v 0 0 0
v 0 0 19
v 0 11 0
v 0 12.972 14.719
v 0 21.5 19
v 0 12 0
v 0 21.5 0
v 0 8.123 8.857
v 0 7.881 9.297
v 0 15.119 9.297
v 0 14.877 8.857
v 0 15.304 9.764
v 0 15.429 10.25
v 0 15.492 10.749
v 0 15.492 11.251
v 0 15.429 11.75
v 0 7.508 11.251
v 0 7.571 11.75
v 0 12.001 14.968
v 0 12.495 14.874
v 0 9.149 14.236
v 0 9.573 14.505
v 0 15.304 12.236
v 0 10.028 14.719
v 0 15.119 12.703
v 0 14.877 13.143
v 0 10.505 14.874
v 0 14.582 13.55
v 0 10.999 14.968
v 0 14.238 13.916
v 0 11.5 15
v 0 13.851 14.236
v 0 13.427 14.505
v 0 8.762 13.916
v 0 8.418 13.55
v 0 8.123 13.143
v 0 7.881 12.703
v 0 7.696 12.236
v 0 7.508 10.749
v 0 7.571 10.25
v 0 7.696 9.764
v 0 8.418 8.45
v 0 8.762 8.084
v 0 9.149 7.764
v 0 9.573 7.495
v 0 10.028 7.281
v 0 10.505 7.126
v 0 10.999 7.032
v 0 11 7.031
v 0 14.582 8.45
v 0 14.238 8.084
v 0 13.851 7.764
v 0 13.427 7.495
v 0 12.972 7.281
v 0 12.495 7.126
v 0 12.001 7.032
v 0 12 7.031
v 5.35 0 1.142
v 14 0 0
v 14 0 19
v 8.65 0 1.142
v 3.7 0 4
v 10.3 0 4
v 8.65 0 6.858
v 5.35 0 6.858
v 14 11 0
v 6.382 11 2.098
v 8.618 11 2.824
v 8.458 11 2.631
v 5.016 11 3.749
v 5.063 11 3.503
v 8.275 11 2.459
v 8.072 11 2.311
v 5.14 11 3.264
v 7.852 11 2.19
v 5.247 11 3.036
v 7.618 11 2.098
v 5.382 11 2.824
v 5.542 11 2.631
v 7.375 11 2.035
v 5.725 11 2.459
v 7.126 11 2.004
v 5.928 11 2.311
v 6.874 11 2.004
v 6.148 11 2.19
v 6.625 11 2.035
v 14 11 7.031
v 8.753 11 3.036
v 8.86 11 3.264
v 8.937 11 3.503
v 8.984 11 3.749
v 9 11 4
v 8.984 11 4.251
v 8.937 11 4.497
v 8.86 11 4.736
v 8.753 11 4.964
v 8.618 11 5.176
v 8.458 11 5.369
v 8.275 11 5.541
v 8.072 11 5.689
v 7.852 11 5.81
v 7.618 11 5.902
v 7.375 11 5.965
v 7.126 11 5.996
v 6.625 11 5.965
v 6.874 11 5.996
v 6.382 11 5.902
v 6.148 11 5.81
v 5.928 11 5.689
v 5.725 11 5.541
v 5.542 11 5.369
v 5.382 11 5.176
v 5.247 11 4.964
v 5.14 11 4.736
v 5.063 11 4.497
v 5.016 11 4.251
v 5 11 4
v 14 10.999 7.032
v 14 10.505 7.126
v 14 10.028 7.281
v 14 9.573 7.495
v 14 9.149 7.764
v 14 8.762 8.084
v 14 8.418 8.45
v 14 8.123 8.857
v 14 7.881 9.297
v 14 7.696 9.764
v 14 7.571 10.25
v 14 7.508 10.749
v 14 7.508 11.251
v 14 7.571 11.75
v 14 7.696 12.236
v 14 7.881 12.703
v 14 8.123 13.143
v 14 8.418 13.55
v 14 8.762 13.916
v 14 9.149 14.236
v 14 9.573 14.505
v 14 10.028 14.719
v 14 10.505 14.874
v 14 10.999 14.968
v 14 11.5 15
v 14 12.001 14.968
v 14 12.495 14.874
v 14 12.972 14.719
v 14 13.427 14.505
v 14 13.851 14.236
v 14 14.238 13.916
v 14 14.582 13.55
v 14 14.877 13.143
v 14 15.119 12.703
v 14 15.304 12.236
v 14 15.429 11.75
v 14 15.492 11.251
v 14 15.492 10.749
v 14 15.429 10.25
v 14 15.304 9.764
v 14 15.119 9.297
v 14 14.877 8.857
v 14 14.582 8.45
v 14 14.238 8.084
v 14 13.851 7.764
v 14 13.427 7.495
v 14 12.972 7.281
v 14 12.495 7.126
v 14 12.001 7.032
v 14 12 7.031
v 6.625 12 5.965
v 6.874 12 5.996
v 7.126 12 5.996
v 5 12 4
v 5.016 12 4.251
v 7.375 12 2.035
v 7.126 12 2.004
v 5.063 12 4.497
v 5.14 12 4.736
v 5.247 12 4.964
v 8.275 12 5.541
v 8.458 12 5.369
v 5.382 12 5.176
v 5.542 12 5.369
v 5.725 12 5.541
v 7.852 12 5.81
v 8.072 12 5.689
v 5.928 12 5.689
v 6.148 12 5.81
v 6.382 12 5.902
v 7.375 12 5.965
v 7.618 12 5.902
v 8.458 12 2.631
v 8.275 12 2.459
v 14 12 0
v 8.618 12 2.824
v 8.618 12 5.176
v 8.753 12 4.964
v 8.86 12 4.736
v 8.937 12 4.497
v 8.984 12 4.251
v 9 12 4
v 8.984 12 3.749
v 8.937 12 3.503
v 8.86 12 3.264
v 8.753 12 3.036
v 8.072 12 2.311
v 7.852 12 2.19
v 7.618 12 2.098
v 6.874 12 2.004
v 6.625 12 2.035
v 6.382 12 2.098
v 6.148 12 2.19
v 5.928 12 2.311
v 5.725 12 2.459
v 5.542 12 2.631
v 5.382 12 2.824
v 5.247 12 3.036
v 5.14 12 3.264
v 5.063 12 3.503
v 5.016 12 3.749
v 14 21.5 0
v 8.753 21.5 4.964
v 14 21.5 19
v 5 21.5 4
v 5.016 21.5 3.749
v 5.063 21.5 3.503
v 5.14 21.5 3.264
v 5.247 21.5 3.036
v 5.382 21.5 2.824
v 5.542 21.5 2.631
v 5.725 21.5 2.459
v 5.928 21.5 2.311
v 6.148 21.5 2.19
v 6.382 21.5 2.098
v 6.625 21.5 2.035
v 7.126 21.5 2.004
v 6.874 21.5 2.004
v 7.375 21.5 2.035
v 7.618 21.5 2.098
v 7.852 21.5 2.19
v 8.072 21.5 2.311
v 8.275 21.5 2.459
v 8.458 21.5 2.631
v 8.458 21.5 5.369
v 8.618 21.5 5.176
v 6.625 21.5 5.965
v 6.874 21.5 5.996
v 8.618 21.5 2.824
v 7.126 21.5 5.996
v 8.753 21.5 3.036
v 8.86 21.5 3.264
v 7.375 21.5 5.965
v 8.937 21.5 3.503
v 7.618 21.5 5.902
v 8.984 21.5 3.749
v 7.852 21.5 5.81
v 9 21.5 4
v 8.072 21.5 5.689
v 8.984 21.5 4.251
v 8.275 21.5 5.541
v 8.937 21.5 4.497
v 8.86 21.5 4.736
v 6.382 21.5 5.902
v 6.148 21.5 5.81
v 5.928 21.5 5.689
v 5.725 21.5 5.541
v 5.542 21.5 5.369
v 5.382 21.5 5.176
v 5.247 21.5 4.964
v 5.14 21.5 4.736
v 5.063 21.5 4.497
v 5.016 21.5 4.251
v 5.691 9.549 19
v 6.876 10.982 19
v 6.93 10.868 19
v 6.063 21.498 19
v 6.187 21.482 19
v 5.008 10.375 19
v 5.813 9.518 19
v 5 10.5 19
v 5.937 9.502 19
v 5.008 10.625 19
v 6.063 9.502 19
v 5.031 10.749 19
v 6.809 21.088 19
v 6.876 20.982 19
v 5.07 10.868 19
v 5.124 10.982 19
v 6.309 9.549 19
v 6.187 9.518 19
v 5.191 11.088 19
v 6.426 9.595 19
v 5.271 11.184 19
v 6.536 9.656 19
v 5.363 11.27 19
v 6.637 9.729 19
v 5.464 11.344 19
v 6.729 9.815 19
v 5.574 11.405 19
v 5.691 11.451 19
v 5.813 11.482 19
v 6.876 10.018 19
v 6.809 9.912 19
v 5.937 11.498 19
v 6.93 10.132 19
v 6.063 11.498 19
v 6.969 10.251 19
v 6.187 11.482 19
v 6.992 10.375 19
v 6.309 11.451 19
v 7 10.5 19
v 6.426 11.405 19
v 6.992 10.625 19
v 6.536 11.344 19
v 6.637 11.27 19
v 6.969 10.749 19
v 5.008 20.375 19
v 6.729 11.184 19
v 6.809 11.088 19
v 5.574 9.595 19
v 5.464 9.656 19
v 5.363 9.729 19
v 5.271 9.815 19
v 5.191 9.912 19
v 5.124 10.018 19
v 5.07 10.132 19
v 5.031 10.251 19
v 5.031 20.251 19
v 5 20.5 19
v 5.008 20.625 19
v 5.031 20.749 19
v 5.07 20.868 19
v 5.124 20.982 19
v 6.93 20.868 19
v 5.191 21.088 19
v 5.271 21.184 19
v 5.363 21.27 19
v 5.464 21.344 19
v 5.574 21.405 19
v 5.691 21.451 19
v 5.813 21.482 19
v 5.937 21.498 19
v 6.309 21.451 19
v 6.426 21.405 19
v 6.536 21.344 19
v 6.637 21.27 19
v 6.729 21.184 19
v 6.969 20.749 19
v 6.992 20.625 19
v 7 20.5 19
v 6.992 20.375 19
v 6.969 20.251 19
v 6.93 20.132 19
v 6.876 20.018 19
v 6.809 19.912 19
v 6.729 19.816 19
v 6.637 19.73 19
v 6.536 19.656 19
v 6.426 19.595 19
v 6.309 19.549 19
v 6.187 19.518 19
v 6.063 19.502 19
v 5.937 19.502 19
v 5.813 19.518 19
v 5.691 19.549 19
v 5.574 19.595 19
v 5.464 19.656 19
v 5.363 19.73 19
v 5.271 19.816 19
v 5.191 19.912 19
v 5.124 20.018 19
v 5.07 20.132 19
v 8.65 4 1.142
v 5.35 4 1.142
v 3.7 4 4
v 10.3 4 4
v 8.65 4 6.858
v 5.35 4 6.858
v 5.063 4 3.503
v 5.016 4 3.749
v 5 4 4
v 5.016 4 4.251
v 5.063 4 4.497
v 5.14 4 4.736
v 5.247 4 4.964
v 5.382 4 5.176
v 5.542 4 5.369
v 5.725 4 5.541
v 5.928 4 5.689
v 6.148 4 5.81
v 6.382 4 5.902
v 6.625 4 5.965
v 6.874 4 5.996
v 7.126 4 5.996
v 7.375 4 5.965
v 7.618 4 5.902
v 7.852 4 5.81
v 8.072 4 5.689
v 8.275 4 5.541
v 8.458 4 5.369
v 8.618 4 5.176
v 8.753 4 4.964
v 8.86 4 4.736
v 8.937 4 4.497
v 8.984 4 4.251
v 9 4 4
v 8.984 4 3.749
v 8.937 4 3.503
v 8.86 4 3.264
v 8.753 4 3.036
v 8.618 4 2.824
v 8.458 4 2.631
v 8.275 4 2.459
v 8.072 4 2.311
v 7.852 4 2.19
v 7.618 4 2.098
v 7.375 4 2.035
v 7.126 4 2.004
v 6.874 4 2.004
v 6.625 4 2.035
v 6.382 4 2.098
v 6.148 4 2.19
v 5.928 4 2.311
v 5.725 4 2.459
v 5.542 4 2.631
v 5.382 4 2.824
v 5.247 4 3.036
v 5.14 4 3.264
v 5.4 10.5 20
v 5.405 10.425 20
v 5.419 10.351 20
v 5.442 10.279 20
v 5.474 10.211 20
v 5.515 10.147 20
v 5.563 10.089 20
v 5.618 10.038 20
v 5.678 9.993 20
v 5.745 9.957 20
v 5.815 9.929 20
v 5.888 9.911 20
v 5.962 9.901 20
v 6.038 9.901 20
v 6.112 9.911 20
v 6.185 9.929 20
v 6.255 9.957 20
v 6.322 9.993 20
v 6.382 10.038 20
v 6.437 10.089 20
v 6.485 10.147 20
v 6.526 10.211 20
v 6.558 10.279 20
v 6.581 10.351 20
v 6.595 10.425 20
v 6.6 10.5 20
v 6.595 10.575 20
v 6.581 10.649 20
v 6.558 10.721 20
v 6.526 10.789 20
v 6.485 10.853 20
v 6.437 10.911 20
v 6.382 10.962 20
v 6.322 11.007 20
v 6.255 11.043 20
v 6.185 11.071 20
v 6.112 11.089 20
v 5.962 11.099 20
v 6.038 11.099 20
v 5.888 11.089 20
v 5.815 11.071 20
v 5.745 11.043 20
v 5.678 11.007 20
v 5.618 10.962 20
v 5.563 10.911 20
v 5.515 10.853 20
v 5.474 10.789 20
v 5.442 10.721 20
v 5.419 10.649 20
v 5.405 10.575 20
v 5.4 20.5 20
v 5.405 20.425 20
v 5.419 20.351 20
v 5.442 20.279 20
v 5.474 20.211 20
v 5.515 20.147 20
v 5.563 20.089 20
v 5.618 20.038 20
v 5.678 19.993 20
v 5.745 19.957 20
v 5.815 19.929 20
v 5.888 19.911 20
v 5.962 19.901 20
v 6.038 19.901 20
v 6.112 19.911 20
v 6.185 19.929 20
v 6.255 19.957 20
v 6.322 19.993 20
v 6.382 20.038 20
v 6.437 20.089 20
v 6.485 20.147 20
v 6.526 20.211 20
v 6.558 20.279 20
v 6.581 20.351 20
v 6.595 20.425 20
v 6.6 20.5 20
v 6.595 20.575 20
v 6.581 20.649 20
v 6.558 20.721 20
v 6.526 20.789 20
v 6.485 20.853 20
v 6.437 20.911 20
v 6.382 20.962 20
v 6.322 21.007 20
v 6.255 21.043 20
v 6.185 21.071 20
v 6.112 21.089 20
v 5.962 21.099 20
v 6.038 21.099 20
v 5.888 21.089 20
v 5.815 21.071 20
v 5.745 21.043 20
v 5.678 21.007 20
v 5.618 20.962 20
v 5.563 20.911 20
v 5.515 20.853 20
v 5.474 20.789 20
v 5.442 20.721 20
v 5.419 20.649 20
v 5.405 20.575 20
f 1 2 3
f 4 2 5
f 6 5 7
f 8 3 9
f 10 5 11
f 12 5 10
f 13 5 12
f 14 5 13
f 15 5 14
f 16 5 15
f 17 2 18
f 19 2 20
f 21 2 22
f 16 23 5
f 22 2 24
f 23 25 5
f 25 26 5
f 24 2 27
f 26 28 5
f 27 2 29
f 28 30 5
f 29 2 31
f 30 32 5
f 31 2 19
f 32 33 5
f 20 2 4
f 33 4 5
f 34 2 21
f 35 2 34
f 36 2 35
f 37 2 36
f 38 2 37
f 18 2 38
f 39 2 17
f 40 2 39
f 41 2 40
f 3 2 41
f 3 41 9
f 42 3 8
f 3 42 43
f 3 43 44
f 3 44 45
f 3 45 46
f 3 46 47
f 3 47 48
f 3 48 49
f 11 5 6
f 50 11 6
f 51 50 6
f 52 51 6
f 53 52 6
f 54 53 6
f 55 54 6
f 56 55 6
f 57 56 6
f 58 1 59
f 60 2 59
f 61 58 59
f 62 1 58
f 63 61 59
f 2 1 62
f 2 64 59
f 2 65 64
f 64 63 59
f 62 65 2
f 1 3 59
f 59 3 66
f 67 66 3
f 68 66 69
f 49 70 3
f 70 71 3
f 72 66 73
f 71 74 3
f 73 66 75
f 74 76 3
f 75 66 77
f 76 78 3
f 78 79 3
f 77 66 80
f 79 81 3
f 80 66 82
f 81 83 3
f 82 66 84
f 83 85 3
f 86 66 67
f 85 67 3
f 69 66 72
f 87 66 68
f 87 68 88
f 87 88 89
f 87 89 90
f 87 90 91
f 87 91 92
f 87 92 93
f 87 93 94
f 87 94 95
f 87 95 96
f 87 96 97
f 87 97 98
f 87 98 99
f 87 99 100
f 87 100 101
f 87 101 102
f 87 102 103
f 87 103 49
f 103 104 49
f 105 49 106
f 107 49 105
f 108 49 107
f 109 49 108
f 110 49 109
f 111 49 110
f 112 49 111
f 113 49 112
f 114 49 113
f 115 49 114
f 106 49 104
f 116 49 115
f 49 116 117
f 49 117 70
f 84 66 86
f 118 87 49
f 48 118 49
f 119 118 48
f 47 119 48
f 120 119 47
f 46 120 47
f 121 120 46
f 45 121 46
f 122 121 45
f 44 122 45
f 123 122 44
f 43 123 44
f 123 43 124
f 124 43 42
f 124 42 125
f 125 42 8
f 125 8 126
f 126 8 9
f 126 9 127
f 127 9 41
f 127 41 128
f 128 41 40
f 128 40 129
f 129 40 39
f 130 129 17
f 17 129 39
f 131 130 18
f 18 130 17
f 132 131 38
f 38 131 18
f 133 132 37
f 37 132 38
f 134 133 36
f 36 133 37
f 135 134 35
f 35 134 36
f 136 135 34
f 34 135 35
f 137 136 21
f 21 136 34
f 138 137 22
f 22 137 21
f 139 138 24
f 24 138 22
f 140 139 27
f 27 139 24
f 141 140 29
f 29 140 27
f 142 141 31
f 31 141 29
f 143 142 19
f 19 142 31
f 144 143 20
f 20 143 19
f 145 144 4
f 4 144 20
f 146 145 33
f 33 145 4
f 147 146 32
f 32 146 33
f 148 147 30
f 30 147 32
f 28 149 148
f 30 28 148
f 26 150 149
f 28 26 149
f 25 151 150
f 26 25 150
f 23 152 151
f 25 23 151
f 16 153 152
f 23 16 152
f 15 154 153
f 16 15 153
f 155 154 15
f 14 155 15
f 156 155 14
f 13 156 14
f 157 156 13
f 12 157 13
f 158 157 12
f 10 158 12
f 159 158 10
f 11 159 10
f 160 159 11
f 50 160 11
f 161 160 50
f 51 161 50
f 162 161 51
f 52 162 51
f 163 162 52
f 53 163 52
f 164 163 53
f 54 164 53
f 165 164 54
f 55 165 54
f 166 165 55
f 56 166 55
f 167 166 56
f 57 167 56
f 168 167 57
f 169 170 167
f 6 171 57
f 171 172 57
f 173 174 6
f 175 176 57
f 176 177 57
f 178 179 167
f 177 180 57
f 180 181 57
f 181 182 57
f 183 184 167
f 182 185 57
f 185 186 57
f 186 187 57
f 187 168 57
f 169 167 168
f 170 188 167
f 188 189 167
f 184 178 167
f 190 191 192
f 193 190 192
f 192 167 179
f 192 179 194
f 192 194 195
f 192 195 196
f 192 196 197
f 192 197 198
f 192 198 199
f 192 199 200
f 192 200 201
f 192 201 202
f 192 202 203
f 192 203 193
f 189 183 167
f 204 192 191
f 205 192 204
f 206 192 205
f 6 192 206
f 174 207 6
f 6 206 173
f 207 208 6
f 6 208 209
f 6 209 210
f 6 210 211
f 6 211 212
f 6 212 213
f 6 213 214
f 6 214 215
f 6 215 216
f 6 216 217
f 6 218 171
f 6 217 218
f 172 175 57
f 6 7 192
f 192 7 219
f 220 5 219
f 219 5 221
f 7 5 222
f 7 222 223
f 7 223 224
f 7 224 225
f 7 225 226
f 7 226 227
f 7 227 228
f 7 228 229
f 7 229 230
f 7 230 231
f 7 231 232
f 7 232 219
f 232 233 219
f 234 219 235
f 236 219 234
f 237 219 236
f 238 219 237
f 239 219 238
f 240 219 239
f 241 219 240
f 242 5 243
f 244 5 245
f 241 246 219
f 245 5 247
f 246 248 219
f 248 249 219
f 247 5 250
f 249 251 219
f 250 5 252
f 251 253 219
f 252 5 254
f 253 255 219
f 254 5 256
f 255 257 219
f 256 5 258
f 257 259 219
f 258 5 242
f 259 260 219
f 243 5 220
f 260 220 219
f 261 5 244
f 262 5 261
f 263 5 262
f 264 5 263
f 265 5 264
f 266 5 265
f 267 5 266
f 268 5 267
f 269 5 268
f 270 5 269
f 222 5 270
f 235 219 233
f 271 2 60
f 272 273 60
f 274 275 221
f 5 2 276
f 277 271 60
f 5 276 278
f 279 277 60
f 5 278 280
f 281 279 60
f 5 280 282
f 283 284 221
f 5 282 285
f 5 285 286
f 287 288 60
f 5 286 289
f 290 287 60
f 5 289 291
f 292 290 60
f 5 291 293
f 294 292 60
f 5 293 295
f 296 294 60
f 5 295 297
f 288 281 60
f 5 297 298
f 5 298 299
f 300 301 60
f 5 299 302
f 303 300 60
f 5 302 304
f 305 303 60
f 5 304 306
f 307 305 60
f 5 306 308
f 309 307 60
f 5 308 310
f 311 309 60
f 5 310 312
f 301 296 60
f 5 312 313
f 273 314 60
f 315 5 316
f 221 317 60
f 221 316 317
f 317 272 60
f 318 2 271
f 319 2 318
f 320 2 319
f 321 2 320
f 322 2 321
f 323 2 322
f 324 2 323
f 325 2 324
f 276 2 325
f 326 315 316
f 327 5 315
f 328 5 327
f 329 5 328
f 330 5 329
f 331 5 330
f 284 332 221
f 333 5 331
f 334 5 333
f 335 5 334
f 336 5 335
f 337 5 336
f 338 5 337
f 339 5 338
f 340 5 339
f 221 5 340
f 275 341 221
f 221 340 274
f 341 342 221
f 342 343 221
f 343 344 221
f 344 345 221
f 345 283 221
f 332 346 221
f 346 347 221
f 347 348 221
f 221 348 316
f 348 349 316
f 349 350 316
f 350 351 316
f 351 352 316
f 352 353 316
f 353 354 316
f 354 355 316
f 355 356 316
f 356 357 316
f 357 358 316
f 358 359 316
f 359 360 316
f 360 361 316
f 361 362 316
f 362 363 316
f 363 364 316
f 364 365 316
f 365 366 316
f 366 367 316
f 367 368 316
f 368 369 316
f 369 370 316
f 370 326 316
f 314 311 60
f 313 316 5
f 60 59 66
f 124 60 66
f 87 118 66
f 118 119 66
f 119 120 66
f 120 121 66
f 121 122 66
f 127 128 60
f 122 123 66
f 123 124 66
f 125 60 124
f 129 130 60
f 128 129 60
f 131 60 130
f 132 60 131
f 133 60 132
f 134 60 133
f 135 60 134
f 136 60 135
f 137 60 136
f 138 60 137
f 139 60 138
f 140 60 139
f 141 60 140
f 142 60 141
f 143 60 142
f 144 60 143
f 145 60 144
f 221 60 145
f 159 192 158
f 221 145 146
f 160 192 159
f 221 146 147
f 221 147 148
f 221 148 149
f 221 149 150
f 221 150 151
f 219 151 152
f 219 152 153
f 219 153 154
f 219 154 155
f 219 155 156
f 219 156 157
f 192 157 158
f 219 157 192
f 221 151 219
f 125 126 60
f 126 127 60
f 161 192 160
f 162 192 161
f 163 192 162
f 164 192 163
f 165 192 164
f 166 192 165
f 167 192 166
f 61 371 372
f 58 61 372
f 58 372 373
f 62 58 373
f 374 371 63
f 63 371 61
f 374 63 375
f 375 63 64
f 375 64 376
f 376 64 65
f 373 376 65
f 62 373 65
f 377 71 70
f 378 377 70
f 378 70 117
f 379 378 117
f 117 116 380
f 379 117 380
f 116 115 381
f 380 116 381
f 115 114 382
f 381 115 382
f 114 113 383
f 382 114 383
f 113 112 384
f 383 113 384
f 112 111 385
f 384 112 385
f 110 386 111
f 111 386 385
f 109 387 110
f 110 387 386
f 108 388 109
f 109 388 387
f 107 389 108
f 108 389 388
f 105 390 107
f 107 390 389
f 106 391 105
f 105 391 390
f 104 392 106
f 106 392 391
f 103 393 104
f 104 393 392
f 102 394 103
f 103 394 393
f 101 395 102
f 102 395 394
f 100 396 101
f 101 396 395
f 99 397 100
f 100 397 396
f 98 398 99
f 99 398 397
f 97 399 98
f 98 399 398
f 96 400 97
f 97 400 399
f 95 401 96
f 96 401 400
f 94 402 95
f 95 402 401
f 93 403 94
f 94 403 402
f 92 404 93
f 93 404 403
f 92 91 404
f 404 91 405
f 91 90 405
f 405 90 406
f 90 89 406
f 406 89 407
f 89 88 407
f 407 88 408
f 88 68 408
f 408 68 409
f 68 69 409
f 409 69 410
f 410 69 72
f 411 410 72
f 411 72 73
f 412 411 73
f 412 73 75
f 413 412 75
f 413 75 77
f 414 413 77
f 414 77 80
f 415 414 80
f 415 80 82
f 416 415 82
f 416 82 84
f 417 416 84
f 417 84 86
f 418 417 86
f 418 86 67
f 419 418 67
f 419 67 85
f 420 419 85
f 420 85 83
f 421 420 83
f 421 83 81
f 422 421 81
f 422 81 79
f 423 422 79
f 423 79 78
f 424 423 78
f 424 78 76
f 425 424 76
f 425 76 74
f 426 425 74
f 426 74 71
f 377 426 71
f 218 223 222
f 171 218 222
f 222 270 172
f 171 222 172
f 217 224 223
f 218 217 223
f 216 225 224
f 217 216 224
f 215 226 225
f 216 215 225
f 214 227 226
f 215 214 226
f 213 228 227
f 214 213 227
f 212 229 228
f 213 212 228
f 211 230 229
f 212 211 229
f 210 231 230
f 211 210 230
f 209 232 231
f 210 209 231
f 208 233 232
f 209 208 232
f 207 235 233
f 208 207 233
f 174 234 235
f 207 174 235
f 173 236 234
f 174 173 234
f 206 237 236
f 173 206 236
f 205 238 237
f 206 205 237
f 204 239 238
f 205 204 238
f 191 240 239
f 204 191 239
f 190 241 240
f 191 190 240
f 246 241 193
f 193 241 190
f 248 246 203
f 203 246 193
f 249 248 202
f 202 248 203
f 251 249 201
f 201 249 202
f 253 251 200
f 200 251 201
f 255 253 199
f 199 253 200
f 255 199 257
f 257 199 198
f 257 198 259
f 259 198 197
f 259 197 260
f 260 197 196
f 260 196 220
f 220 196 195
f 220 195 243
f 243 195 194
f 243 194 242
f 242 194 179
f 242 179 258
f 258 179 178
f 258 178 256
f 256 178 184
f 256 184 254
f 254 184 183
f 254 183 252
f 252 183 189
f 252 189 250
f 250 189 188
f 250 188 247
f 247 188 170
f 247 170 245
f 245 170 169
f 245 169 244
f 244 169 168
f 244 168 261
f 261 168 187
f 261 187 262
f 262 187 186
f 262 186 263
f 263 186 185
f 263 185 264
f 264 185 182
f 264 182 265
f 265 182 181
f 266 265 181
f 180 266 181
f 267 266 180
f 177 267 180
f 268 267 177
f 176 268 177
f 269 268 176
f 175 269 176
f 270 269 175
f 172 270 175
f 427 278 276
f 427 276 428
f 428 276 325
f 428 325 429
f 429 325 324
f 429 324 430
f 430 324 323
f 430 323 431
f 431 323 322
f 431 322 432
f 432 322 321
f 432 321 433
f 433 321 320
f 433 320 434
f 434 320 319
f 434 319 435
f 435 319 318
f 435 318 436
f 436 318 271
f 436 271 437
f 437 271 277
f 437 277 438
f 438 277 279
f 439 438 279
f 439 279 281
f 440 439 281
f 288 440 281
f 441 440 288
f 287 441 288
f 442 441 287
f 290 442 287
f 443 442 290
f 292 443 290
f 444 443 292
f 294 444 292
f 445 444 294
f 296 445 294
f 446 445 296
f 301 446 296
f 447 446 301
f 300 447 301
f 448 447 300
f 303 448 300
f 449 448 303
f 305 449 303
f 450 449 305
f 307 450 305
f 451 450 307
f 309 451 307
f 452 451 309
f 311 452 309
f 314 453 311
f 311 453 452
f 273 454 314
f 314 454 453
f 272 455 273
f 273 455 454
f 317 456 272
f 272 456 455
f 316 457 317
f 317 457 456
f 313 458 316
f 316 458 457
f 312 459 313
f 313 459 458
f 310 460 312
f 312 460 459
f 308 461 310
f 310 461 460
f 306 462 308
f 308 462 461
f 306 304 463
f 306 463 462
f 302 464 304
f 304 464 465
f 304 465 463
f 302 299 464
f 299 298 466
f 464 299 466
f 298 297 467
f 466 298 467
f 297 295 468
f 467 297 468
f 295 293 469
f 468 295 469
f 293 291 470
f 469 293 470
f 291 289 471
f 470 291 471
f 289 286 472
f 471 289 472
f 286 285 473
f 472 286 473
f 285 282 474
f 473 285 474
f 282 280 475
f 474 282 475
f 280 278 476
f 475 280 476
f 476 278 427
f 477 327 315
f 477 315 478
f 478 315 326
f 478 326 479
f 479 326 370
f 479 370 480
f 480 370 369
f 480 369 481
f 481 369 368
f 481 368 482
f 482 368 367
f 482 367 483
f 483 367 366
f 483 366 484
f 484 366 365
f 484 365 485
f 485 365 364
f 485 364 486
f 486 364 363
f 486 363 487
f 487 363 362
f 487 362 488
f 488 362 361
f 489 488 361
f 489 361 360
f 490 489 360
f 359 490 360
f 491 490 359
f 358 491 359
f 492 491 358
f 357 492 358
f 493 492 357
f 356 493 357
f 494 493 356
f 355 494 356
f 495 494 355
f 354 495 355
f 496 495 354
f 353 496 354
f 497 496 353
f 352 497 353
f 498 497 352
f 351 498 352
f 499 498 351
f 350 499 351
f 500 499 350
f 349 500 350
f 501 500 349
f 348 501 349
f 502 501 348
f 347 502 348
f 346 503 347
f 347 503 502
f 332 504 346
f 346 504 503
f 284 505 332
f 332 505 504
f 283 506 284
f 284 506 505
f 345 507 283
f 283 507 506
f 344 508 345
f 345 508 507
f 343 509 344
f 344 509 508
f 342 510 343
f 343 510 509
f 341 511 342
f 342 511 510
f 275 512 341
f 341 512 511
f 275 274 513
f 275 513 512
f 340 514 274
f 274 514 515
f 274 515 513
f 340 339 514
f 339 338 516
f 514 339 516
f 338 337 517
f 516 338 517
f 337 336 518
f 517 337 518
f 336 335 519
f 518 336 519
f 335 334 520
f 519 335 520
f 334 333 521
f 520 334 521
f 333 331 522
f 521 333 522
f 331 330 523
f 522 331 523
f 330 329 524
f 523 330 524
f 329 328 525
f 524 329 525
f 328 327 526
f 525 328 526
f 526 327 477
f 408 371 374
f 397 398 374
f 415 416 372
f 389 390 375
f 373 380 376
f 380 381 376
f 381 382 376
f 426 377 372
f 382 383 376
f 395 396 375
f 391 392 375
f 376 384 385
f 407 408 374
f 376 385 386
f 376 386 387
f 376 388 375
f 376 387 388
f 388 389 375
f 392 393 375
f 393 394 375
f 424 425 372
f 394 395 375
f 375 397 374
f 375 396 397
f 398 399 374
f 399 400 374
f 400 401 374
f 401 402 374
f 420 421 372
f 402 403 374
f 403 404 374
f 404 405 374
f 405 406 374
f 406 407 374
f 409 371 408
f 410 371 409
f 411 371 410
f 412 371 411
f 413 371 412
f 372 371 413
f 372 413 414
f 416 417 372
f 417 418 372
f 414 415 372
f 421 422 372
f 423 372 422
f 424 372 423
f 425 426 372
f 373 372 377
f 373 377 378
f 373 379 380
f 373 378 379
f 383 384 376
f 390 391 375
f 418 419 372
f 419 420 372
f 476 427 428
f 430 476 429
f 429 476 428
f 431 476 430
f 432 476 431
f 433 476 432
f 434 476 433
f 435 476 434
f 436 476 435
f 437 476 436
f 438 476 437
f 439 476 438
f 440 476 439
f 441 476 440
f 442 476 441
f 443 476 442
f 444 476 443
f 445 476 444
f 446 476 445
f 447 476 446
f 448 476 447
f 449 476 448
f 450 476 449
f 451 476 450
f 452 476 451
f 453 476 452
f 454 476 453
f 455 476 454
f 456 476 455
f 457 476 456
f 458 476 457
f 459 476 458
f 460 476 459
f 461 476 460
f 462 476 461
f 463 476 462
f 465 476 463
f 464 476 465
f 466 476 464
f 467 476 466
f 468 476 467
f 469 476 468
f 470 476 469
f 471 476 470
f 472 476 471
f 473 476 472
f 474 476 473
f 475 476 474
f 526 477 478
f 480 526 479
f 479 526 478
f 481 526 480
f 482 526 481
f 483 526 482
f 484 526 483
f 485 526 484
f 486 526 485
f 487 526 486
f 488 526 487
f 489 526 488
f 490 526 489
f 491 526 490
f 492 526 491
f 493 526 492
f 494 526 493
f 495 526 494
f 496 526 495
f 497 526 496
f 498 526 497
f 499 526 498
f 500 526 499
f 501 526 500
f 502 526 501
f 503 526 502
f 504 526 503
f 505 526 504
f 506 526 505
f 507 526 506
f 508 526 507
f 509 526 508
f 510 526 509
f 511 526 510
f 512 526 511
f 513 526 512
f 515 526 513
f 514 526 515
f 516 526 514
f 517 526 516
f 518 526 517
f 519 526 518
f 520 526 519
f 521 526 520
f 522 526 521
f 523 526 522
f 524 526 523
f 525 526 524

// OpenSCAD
height=19;
long=14;
larg=21.5;
r_arbre=4;
r_m3=2;
r_ecrou_m3=3.3;

module endstop_x(){
	difference(){	
		union(){
			cube([long,larg,height]);

			//cônes pour endstop
			translate([long-8,larg-1,height]){cylinder(h = 1, r1 = 1, r2 = 0.6, $fn=50);}
			translate([long-8,larg-11,height]){cylinder(h = 1, r1 = 1, r2 = 0.6, $fn=50);}
			
		}
		
		//trou pour passage arbre
		translate([-5,larg-10,11]){rotate([0,90,0])cylinder(r=r_arbre, h=30, $fn=50);}
		translate([-5,larg-10-0.5,-5]){cube([30,1,16]);}

		//trou pour serrage arbre avec vis
		translate([long/2,-5,4]){rotate([-90,0,0])cylinder(r=r_m3, h=30, $fn=50);}
		translate([long/2,-5,4]){rotate([-90,0,0])cylinder(r=r_ecrou_m3, h=9, $fn=6);}

		
	}
}
endstop_x();
